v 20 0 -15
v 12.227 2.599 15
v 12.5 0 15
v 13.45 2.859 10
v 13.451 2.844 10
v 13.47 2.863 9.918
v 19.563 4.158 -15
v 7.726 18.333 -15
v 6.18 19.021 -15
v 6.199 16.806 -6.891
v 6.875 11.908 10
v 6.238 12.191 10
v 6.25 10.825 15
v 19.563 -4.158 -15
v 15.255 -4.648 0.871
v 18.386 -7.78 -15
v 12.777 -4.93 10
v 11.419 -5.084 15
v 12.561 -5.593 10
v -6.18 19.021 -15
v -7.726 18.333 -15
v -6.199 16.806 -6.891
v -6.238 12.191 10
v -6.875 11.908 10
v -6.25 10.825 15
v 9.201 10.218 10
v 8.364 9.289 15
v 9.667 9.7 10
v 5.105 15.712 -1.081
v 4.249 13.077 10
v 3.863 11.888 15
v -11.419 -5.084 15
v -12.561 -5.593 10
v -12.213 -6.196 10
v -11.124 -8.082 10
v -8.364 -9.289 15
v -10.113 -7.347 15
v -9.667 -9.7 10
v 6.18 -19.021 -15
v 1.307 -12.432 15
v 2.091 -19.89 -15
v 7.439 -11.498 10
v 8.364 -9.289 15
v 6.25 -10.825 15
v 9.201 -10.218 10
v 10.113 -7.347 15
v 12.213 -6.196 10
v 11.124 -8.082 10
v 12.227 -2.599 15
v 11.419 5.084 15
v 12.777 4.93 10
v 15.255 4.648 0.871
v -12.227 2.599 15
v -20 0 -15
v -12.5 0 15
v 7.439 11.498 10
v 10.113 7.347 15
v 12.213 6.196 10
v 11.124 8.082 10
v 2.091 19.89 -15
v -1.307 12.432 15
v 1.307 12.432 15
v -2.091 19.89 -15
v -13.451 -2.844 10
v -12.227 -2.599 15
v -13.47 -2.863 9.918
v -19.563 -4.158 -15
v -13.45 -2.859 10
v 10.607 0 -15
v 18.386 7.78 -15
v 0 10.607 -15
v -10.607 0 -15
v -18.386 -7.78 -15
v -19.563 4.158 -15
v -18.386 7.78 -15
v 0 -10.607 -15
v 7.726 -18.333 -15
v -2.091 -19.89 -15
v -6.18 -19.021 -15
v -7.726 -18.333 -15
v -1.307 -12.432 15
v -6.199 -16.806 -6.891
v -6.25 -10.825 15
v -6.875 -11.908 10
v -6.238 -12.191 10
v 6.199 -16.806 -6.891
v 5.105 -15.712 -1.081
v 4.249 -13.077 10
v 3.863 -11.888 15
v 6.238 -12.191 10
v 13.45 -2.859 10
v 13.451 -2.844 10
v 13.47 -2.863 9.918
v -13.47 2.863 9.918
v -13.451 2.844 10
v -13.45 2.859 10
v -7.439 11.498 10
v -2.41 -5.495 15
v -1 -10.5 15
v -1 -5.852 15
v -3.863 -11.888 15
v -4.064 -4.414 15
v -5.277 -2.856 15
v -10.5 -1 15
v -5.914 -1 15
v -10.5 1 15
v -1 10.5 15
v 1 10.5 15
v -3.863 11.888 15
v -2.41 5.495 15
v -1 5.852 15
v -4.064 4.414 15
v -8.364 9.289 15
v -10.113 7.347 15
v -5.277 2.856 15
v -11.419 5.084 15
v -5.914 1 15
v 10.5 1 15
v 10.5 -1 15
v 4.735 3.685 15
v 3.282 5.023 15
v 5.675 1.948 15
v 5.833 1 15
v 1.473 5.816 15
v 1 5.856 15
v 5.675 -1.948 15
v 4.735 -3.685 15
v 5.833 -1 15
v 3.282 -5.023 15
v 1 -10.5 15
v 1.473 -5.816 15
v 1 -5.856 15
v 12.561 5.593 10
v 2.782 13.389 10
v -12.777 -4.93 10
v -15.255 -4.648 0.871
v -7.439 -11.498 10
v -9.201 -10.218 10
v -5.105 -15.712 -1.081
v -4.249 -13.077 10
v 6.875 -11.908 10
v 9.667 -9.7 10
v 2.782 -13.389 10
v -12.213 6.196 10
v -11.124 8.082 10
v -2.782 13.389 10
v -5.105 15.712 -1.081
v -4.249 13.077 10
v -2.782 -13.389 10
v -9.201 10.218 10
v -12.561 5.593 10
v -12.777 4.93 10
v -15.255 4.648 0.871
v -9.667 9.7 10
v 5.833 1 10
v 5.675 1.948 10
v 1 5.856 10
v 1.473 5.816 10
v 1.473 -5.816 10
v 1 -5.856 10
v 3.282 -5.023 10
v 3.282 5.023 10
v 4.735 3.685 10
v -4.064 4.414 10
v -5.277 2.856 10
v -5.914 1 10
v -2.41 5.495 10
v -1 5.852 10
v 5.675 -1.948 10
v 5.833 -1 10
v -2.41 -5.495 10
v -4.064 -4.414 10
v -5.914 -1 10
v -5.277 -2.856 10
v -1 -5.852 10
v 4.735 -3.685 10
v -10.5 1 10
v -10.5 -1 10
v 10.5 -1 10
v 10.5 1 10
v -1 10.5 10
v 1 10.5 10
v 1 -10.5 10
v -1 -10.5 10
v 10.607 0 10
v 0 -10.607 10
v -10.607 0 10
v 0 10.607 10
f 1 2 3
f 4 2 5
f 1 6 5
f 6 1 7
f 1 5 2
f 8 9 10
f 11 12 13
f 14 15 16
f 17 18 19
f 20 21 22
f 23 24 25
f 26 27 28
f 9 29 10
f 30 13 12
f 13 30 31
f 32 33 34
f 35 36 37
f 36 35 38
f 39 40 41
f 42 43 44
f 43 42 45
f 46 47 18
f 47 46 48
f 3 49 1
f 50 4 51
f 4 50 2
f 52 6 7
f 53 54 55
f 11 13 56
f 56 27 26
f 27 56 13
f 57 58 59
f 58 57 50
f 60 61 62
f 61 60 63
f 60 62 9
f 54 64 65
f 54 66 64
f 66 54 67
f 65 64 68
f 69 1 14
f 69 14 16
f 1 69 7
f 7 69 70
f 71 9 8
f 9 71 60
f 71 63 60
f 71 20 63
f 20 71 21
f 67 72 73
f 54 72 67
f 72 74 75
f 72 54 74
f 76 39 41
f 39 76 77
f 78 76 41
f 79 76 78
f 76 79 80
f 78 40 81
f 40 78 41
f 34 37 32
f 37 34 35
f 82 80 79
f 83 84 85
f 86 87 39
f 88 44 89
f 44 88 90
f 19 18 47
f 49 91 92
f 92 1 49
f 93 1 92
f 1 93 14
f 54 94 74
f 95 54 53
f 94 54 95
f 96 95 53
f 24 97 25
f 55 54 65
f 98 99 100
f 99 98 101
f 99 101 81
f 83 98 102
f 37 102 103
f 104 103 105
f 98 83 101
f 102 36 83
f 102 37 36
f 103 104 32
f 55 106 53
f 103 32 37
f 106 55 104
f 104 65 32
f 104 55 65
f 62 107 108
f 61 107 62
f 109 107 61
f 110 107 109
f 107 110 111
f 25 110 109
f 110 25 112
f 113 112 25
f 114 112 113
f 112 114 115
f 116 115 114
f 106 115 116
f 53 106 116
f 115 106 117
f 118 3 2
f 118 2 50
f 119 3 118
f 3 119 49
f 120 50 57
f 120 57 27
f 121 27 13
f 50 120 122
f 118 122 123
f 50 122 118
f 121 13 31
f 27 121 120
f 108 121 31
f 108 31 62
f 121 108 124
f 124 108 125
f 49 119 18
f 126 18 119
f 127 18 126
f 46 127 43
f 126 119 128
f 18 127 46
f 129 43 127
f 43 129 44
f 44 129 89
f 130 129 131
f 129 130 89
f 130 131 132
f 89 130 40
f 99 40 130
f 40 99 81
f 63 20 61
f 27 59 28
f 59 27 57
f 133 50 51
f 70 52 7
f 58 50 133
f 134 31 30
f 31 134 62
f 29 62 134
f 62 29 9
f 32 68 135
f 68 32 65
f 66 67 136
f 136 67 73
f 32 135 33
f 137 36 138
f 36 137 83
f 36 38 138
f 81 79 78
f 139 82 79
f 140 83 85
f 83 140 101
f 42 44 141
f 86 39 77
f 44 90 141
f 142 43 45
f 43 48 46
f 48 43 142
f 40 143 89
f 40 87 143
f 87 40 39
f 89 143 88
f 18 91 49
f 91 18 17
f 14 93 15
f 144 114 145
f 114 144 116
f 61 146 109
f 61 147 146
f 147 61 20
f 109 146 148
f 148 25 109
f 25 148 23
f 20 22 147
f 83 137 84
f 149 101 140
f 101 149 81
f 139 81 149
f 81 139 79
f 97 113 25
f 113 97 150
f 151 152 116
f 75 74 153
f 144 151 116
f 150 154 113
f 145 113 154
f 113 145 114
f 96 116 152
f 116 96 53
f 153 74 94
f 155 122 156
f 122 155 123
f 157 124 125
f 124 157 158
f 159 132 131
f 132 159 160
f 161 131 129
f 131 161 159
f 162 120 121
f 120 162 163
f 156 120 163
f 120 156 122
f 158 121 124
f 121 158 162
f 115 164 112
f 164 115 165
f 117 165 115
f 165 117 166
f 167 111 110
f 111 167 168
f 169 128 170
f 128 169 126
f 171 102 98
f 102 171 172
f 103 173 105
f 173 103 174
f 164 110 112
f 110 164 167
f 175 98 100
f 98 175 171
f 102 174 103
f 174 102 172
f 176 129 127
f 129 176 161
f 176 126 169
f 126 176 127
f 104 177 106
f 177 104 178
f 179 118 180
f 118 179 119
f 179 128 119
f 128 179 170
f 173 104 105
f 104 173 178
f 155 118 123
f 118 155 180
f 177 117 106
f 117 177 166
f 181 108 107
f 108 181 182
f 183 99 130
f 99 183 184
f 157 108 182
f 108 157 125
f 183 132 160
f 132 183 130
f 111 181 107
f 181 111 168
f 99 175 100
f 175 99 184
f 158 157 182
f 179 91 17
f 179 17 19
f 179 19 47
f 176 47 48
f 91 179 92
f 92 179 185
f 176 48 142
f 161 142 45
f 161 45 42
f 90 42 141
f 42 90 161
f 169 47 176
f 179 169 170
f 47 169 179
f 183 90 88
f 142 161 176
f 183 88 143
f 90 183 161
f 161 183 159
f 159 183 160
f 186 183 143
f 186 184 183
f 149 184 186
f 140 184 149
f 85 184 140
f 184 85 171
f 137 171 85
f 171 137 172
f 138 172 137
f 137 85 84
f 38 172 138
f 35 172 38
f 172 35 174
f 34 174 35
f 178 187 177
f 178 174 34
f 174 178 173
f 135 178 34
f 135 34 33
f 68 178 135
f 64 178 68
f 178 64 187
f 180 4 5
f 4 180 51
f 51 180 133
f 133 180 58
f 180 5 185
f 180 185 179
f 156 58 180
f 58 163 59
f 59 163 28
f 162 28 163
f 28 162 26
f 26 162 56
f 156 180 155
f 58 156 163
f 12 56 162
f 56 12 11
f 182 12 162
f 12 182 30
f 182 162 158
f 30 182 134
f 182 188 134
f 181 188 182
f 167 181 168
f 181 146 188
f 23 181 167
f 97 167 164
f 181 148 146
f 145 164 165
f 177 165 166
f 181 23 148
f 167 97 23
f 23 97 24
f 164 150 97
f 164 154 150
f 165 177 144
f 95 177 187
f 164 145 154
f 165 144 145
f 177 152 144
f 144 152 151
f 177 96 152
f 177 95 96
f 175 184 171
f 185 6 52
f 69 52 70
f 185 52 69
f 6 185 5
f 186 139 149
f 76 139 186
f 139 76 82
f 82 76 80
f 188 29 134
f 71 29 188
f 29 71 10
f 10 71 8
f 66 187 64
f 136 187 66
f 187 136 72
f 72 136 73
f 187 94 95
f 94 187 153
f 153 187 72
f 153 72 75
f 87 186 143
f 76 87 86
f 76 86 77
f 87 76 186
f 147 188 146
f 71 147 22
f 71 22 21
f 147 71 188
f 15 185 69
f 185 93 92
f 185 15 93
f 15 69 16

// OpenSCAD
fog_inner_diameter = 12;
fog_outer_diameter = 21;
fog_fan_width      = 2;
fog_fan_height     = 5;
wall               = 2;
height             = 30;
foot_diameter      = 40;


module crosscut(diameter, width, height) {
    cube([diameter, width, height], center = true);
    rotate(90) cube([diameter, width, height], center = true);
}

difference(){
    difference(){
        cylinder(height, foot_diameter/2, fog_outer_diameter/2 + wall, center = true);
        cylinder(height, fog_inner_diameter/2, fog_inner_diameter/2, center = true);
    }
    crosscut(fog_outer_diameter, fog_fan_width, height);
    translate([0,0,-fog_fan_height])
        rotate(45)
            crosscut(foot_diameter, 15, height);
}
